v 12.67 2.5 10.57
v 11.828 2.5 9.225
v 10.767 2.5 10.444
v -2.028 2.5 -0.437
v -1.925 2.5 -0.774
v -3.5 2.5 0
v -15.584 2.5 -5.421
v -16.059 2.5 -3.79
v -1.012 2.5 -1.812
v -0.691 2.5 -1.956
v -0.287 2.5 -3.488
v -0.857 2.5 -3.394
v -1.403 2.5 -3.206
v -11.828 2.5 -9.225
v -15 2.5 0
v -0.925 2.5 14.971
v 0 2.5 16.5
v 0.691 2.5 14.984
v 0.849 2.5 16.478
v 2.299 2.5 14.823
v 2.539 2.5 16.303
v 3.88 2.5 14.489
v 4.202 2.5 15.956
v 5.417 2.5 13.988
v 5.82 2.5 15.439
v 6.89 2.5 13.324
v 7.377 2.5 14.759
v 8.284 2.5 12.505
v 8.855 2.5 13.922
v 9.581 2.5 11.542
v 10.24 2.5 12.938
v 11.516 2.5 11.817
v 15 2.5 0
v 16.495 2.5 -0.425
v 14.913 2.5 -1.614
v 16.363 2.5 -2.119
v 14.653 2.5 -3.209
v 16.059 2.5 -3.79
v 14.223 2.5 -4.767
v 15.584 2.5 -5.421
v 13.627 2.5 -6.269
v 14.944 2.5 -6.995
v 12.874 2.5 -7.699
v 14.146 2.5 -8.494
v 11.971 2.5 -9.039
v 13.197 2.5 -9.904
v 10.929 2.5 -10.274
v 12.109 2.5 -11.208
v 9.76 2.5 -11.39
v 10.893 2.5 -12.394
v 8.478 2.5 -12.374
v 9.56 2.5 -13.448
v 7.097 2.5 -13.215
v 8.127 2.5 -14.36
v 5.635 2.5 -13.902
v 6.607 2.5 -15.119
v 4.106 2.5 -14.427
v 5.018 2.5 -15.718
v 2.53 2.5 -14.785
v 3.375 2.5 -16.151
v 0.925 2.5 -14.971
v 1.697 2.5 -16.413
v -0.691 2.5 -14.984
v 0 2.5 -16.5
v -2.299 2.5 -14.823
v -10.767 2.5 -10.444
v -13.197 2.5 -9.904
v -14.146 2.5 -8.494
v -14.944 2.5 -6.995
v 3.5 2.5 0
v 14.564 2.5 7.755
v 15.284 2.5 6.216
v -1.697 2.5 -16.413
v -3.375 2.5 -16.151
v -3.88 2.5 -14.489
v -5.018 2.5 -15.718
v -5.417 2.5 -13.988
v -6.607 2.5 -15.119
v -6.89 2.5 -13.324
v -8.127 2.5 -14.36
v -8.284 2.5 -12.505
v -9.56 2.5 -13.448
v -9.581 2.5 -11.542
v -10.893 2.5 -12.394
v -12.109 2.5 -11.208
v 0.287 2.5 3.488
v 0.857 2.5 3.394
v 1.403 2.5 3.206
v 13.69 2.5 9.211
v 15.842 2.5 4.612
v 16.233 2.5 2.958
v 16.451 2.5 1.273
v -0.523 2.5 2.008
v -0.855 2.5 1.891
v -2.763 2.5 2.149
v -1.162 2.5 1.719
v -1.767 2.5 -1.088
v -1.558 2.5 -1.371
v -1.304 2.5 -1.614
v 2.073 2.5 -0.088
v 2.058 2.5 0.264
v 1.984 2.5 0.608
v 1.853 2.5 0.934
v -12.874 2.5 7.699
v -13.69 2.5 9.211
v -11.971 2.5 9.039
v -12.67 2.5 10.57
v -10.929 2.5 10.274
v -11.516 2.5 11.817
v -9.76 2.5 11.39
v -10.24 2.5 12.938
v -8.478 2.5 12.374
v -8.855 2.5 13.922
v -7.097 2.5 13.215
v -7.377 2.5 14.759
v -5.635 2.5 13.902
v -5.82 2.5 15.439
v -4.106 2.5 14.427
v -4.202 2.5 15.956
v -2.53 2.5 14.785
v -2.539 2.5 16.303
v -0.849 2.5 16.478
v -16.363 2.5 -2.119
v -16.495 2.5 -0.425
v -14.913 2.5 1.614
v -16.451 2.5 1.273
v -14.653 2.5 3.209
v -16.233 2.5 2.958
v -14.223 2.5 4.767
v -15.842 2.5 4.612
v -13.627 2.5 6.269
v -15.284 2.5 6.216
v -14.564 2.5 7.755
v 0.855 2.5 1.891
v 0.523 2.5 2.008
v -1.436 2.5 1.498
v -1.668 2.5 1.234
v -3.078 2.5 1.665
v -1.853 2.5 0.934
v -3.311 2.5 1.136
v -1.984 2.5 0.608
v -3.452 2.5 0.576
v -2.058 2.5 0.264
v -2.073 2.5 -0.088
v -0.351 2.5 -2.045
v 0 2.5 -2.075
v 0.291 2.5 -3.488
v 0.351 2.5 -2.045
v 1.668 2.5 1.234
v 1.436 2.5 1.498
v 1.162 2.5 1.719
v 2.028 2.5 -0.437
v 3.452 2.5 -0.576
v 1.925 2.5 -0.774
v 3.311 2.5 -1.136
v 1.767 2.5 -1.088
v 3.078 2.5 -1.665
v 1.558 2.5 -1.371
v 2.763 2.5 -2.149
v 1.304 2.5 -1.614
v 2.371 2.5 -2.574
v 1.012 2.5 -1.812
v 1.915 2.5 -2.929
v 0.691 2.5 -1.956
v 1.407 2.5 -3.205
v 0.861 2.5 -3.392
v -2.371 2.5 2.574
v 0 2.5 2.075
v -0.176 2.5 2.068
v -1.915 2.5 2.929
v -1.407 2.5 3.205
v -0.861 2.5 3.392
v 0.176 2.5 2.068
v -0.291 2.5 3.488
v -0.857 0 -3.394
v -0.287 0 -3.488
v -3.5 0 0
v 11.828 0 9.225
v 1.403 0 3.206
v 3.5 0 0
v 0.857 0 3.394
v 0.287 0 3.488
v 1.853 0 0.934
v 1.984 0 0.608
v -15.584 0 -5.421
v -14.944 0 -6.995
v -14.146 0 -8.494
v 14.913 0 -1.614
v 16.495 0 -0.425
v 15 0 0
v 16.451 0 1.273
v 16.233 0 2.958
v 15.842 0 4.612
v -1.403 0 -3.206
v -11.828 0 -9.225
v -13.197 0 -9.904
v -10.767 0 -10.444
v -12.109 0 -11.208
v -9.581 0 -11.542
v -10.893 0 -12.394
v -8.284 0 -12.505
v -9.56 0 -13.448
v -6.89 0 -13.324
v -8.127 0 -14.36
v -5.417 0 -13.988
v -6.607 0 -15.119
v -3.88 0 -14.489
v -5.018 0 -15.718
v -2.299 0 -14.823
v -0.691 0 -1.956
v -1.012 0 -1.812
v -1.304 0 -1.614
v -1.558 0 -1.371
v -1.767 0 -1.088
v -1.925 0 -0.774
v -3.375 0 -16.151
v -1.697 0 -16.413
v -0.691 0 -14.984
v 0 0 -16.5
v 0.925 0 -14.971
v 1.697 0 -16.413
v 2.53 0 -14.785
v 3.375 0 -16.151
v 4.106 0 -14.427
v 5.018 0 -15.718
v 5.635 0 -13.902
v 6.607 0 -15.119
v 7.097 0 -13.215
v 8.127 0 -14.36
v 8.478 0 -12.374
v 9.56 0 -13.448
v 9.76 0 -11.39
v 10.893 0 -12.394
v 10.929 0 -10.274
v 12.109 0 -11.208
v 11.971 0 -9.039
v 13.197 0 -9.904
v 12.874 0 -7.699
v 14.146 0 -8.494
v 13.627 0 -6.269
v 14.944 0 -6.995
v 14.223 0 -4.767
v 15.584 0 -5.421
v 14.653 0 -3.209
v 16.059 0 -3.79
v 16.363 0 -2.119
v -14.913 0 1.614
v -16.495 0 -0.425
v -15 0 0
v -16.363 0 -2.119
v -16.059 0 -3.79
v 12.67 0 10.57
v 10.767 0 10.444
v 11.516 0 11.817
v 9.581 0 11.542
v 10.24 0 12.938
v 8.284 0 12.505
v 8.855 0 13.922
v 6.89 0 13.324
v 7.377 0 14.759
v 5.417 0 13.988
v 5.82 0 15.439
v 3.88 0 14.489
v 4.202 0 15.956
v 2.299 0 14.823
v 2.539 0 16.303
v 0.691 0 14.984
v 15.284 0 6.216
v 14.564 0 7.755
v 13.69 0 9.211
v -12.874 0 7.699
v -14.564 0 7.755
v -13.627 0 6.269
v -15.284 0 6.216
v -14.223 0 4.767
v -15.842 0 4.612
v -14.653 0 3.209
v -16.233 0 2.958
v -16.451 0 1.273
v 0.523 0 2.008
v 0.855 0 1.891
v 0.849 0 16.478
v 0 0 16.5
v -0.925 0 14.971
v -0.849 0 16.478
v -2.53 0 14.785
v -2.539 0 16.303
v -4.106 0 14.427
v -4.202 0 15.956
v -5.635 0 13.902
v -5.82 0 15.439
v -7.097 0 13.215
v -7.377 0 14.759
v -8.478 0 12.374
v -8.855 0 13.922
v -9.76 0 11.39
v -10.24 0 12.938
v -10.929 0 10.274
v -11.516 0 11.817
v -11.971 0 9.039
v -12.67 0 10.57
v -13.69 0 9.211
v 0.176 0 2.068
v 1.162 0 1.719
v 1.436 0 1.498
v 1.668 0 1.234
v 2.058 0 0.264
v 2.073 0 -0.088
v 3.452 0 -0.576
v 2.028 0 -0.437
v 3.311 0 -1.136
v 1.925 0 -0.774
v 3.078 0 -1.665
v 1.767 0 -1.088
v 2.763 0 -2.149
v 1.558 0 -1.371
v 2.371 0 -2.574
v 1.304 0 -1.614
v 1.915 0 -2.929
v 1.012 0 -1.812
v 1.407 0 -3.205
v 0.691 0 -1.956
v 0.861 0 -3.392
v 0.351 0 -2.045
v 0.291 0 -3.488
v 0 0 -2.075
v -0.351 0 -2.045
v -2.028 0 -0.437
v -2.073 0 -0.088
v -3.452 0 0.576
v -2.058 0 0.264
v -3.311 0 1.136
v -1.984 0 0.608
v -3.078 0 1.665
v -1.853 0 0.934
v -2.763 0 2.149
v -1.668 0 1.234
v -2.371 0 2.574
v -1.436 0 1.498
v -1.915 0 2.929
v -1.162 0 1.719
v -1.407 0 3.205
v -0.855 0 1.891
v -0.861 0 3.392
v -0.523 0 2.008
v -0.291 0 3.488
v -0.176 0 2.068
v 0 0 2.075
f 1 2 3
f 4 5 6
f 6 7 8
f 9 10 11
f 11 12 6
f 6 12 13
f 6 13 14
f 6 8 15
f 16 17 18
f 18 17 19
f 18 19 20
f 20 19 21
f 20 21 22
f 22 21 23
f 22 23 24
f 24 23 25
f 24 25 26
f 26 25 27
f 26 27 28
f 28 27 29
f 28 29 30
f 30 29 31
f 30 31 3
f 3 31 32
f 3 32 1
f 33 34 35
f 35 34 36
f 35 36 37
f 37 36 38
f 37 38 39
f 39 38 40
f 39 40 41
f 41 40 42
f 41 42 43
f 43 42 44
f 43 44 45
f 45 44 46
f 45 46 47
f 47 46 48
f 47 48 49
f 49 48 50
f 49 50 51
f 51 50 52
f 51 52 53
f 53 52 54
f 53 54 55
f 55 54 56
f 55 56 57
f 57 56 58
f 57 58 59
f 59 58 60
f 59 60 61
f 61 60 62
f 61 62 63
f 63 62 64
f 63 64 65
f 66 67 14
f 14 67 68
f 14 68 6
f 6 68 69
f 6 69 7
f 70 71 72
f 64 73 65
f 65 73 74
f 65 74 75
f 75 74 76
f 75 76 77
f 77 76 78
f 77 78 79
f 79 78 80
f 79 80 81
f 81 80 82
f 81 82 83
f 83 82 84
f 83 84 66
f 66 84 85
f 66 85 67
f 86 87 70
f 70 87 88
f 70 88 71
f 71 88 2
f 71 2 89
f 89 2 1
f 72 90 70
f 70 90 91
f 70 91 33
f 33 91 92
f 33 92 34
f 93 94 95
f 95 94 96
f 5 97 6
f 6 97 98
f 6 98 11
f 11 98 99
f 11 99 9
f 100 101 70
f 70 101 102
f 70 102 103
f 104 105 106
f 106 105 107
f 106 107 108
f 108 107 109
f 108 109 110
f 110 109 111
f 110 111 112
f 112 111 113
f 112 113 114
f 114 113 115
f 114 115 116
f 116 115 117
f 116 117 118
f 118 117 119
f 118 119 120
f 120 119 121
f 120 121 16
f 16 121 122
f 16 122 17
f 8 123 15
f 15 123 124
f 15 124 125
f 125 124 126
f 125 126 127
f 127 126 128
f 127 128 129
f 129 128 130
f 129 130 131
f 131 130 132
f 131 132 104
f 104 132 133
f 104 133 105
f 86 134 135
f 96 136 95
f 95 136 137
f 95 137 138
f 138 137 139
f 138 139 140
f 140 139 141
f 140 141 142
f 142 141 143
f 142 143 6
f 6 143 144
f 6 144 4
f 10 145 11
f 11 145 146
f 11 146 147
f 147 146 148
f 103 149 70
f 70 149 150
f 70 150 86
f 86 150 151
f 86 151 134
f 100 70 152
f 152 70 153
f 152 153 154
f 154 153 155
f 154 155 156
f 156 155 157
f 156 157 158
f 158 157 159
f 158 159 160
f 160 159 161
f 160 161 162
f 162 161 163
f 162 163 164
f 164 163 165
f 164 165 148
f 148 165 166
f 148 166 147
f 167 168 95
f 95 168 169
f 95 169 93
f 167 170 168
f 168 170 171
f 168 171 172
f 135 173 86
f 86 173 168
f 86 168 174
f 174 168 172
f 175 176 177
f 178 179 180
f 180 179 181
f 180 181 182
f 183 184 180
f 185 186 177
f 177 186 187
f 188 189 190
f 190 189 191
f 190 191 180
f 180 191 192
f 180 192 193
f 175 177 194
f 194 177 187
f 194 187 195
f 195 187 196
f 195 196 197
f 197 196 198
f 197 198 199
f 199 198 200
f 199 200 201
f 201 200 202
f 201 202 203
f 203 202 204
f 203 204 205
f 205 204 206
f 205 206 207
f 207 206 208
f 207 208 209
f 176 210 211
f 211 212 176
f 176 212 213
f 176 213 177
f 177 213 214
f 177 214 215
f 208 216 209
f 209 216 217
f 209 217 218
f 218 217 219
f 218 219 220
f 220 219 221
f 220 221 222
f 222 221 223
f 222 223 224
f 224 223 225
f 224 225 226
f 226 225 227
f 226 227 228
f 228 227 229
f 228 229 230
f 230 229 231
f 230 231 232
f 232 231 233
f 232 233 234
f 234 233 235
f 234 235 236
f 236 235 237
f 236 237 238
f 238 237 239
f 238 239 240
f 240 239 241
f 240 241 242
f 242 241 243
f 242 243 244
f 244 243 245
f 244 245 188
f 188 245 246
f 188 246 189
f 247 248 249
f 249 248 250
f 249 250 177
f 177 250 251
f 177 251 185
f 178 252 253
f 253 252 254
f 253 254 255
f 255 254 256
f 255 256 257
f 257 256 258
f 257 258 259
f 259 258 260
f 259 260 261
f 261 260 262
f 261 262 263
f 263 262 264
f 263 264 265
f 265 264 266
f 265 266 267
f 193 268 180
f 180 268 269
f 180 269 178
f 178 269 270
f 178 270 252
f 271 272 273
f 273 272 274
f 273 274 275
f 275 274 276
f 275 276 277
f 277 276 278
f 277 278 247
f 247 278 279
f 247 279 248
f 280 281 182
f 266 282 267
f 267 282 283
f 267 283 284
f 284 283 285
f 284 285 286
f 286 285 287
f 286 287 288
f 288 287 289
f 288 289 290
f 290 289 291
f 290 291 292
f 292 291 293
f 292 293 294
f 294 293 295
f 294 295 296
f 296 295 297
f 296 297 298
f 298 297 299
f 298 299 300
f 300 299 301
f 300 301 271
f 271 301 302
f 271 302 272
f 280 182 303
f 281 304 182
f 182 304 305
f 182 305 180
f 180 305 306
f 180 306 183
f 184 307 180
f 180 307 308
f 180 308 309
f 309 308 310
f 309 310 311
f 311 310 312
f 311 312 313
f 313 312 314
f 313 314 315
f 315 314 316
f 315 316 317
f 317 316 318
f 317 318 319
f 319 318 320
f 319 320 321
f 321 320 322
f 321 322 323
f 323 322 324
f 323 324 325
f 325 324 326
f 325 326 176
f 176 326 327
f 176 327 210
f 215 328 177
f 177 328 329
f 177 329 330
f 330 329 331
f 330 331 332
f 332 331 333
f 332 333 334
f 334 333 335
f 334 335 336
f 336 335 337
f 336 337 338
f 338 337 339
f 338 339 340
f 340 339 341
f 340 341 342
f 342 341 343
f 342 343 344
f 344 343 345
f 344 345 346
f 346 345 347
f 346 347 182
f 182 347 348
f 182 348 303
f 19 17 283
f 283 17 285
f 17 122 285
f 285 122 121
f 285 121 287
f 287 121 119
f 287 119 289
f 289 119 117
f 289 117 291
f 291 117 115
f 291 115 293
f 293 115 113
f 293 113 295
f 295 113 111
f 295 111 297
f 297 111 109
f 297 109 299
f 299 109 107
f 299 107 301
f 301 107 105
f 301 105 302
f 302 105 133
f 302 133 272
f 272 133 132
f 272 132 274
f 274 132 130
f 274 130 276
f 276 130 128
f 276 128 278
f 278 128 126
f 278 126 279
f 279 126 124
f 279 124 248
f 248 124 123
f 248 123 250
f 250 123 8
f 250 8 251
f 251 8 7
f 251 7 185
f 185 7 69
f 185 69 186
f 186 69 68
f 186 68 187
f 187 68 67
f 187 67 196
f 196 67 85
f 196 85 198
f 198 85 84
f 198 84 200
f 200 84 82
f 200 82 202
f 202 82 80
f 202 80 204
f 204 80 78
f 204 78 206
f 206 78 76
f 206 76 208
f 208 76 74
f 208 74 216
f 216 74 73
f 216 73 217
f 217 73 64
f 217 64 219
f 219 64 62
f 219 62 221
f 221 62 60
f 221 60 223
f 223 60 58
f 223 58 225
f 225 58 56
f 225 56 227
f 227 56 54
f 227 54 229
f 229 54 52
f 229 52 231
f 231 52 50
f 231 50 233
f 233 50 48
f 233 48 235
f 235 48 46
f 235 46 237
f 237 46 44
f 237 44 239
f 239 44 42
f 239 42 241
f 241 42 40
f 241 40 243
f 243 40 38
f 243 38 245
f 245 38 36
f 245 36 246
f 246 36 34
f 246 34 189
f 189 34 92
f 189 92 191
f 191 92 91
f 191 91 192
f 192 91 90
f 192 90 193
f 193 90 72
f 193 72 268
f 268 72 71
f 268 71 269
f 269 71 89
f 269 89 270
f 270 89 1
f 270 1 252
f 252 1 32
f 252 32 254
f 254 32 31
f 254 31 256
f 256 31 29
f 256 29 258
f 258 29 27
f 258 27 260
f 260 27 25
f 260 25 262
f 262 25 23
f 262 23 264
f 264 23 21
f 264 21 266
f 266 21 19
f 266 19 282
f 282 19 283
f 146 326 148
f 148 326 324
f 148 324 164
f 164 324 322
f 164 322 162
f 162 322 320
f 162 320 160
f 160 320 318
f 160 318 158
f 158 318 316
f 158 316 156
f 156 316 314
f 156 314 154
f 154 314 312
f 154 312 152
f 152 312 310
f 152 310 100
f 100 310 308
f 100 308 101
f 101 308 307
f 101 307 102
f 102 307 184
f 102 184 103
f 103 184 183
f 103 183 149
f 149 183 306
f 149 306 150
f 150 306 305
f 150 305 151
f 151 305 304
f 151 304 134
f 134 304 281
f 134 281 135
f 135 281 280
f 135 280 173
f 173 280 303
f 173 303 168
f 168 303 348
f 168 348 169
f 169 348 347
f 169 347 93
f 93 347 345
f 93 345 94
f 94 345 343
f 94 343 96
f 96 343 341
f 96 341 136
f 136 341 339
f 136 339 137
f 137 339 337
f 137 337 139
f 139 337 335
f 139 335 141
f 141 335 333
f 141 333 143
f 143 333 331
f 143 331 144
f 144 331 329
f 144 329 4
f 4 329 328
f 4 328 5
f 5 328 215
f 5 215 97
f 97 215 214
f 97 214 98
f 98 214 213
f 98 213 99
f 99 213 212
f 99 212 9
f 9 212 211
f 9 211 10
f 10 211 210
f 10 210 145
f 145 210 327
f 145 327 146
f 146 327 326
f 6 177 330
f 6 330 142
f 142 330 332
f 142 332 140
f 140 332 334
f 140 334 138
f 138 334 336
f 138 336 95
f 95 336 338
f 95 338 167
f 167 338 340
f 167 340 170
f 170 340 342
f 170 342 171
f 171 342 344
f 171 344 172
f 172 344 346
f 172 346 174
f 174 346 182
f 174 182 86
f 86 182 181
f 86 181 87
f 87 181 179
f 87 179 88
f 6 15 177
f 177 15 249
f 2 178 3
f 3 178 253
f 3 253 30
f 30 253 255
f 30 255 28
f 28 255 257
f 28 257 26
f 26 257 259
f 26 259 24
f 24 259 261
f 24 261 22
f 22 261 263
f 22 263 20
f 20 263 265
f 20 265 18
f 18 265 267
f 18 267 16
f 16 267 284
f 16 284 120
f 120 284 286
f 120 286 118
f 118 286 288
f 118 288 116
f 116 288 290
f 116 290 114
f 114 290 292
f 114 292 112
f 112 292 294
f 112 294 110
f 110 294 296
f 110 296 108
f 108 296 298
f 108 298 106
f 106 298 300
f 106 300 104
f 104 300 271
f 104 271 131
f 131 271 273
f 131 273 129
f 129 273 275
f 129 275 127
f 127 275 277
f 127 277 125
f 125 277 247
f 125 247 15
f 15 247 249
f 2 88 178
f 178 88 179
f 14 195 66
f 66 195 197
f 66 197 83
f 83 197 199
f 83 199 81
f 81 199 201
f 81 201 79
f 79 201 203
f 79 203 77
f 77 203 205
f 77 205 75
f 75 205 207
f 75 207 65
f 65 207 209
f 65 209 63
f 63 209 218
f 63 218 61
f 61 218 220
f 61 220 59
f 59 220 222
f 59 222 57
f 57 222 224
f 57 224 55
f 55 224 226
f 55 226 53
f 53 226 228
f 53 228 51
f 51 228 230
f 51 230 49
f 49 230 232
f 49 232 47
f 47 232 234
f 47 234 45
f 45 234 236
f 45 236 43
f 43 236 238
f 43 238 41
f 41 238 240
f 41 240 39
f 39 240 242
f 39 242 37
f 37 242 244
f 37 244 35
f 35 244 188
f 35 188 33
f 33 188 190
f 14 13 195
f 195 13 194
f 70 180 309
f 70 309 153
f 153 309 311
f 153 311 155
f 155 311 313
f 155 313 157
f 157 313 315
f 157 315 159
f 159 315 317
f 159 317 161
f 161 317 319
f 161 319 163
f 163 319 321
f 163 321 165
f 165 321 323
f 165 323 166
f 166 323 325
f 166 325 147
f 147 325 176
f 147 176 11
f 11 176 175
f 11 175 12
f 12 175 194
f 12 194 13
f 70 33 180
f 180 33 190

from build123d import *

# Parameters (mm, degrees)
SKETCH1_R           = 16.5
SKETCH1_R_2         = 2.075
BOSS_EXTRUDE1_DEPTH = 2.5


with BuildPart() as part:
    # Sketch1 → Boss-Extrude1 (new body)
    with BuildSketch(Plane(origin=(0, 0, 0), x_dir=(1, 0, 0), z_dir=(0, 1, 0))):
        with Locations(Location((0, 0, 0), (0, 0, 270))):
            Circle(SKETCH1_R)
        with Locations(Location((0, 0, 0), (0, 0, 270))):
            Circle(SKETCH1_R_2, mode=Mode.SUBTRACT)
        with BuildLine():
            Line((-3.5, 0), (-15, 0))
            ThreePointArc((-15, 0), (-4.877508592, -14.1848479), (11.827987991, -9.224895668))
            Line((11.827987991, -9.224895668), (1.403459084, -3.206291097))
            ThreePointArc((1.403459084, -3.206291097), (-1.915449452, -2.92934351), (-3.5, 0))
        make_face(mode=Mode.SUBTRACT)
        with BuildLine():
            Line((-11.827987991, 9.224895668), (-1.403459084, 3.206291097))
            ThreePointArc((-1.403459084, 3.206291097), (1.915449452, 2.92934351), (3.5, 0))
            Line((3.5, 0), (15, 0))
            ThreePointArc((15, 0), (4.877508592, 14.1848479), (-11.827987991, 9.224895668))
        make_face(mode=Mode.SUBTRACT)
    extrude(amount=BOSS_EXTRUDE1_DEPTH)


solid = part.part
